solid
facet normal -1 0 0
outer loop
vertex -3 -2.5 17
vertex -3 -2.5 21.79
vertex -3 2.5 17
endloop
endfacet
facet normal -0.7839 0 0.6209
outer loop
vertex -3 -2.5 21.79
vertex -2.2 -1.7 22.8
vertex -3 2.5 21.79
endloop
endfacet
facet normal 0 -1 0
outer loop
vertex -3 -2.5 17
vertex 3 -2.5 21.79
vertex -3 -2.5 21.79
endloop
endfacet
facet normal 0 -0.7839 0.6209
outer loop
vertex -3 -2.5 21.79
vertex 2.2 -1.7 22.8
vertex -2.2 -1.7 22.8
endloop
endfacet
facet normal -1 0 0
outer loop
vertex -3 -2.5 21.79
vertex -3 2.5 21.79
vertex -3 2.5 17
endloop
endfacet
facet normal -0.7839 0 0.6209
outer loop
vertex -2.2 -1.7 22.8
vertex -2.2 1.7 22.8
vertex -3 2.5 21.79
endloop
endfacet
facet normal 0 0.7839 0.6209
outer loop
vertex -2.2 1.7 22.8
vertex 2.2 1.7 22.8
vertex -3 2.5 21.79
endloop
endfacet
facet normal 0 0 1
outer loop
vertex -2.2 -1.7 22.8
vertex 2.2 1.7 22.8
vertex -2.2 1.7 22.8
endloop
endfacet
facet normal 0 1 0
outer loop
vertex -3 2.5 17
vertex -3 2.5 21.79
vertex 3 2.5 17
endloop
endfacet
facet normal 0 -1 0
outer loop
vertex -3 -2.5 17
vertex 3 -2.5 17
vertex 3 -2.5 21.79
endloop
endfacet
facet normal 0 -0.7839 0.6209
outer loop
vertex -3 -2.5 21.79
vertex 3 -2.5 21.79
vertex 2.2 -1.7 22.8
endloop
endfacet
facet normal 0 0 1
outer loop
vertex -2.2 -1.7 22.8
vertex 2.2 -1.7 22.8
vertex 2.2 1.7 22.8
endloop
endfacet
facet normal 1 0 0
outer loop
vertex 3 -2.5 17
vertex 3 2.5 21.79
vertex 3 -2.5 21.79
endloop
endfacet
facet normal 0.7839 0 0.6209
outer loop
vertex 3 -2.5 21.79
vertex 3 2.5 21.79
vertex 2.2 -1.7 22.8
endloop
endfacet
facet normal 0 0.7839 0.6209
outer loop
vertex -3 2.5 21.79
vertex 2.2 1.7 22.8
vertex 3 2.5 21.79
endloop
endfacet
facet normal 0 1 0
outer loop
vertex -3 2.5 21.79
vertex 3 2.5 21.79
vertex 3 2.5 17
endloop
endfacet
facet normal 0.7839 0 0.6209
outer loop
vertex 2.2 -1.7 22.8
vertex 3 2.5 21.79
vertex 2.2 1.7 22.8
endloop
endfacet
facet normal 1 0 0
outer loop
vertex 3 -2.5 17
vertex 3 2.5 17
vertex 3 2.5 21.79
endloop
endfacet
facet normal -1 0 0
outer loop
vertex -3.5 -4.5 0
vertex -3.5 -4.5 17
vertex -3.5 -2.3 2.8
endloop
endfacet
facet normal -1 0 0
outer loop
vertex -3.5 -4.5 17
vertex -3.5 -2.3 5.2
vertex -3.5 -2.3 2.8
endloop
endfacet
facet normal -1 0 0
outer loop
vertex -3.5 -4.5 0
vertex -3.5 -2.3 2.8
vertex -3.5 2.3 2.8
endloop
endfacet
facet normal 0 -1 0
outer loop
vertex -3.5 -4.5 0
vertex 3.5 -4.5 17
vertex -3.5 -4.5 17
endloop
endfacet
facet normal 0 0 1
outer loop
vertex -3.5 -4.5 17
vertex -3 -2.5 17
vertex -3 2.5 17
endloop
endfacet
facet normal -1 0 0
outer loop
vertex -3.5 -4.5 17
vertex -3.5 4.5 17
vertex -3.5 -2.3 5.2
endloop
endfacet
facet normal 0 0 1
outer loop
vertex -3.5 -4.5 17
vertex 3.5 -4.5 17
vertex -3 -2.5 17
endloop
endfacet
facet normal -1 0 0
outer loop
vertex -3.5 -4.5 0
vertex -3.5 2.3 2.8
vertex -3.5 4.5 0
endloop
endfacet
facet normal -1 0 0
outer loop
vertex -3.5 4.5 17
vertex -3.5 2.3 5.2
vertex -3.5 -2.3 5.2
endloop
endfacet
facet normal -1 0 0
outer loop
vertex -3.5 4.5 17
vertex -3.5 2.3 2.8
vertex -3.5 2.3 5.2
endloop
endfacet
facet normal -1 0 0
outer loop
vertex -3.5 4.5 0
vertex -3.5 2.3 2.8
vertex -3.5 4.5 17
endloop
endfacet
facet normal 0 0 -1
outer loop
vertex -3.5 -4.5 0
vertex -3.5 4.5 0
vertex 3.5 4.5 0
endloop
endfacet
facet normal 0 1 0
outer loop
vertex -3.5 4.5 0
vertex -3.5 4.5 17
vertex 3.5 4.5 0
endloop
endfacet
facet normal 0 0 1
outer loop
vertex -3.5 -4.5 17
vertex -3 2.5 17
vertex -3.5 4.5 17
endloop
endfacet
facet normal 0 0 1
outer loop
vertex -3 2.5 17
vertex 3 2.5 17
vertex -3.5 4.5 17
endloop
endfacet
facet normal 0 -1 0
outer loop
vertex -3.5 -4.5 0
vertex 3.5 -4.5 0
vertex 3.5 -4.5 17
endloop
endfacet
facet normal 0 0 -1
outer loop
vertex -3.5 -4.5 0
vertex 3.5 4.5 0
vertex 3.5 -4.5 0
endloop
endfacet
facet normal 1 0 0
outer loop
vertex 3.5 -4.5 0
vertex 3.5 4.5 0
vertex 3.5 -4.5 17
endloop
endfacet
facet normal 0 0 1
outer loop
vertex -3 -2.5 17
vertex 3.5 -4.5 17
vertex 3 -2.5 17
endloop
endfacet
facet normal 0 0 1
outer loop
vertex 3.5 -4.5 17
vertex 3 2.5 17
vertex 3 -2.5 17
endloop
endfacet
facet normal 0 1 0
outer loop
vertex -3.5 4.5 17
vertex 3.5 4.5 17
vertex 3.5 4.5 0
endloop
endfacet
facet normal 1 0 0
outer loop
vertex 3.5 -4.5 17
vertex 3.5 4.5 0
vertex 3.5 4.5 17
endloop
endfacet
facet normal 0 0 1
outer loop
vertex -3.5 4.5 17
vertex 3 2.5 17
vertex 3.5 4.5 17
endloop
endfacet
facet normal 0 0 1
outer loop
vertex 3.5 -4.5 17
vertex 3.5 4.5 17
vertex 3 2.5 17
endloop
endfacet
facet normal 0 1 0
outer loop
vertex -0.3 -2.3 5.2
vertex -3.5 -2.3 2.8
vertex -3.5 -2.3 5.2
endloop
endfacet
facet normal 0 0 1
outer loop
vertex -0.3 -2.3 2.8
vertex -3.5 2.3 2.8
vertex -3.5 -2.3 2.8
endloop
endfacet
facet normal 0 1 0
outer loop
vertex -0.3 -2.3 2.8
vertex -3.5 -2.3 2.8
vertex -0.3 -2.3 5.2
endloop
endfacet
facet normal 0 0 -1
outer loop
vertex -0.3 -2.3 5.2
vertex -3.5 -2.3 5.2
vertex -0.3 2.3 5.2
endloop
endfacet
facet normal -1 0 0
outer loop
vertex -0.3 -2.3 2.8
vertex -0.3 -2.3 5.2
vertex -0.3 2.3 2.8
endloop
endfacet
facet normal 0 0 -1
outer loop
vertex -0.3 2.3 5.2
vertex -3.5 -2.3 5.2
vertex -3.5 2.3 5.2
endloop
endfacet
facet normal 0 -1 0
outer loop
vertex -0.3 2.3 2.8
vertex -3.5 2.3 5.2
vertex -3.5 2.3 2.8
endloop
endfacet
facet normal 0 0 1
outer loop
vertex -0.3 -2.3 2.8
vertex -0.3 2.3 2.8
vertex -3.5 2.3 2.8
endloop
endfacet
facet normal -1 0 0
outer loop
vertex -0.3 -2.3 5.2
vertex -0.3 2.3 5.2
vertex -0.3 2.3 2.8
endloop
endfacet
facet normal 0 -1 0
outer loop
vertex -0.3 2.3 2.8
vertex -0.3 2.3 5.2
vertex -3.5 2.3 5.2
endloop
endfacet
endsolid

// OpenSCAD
// file: lib/comun.scad
// =====================================================================
// AutoSwapEnder3Pro - parametros y utilidades comunes de las piezas
// Licencia MIT. Unidades: milimetros.
//
// Sistema de coordenadas de la ESTACION (el mismo en todas las piezas que
// se montan en ella):
//   s : a lo largo de la estacion, 0 = HOME del carro, crece hacia la impresora
//   x : a lo ancho, 0 = eje central (riel lineal), +x = lado de la caja de descarga
//   z : vertical, 0 = cara superior de la base de perfiles 2020 ("b" en la guia)
// El plano de transferencia (superficie por la que se deslizan las placas)
// esta en z = PLANO. Se ajusta a la altura de la cama de la impresora con las
// patas niveladoras, NO cambiando estas piezas.
// =====================================================================

$fn = 48;

// ----------------------------------------------------- placas y cama
placa_ancho  = 235;     // placa PEI
placa_largo  = 235;
placa_esp    = 0.6;     // espesor real de tus placas (mide con calibrador; 0.5 a 0.75)
voladizo     = 11;      // cuanto sobresale la placa (o su lengüeta) por delante de la cama

// ----------------------------------------------------- estacion (alturas sobre la base)
PLANO        = 60;      // plano de transferencia sobre la cara superior de la base
RIEL_SUP     = 20;      // cara superior del riel lineal (2020 apoyado en los travesaños)
ZP           = PLANO - RIEL_SUP;  // = 40: plano de transferencia sobre el riel lineal

// zapata (debe coincidir con zapata.scad)
zapata_bajo  = 8;       // cuanto cuelga la zapata por debajo de la placa
zapata_bolsillo = 6;    // profundidad del bolsillo para el dedo (desde abajo)

// cargador (ascensor)
paso_estante = 14;      // distancia vertical entre placas en el cargador
niveles      = 6;       // placas que caben en el cargador

// ----------------------------------------------------- perfil y tornilleria
perfil      = 20;       // perfil de aluminio 2020
ranura_ancho = 6.2;     // boca de la ranura (serie 20)
holgura     = 0.3;      // holgura general de impresion

m2_paso     = 1.8;   // agujero para autorroscante M2 (servos)
m3          = 3.4;   // paso libre M3
m3_rosca    = 2.7;   // para roscar M3 directamente en plastico
m3_tuerca   = 5.7;   // M3: entre caras + holgura
m3_tuerca_h = 2.6;
m3_cabeza   = 6.2;
m4          = 4.4;
m5          = 5.4;   // paso libre M5
m5_cabeza   = 9.2;
m5_tuerca   = 8.2;   // M5: entre caras + holgura

// ruedas en V estandar (Openbuilds "Solid V Wheel" + rodamientos 625)
rueda_d      = 23.9;
rueda_ancho  = 10.2;
rueda_sep    = 39.26;   // distancia entre centros de ruedas a ambos lados de un 2020
excentrica_d = 7.2;     // alojamiento del espaciador excentrico
espaciador_h = 6;       // espaciador (excentrico o fijo) entre rueda y placa

// ----------------------------------------------------- utilidades

// Caja con aristas verticales redondeadas (r) apoyada en z=0.
module caja_r(size, r = 2) {
  r2 = min(r, size[0] / 2 - 0.01, size[1] / 2 - 0.01);
  hull() for (ix = [r2, size[0] - r2], iy = [r2, size[1] - r2])
    translate([ix, iy, 0]) cylinder(r = r2, h = size[2]);
}

// Igual pero centrada en x e y.
module caja_rc(size, r = 2) { translate([-size[0] / 2, -size[1] / 2, 0]) caja_r(size, r); }

// Prisma hexagonal para tuercas (ec = medida entre caras).
module hexagono(ec, h) { cylinder(d = ec / cos(30), h = h, $fn = 6); }

// Ranura (agujero alargado) a lo largo de x.
module ranura(largo, d, h) {
  hull() for (i = [-largo / 2, largo / 2]) translate([i, 0, 0]) cylinder(d = d, h = h);
}

// Taladro M5 con avellanado para la cabeza (para atornillar a un perfil con tuerca en T).
module taladro_m5(h, cabeza = 4) {
  translate([0, 0, -0.1]) cylinder(d = m5, h = h + 0.2);
  translate([0, 0, h - cabeza]) cylinder(d = m5_cabeza + 0.6, h = cabeza + 0.1);
}

// Taladro M3 pasante con alojamiento de tuerca hexagonal por debajo.
module taladro_m3_tuerca(h, prof_tuerca = m3_tuerca_h + 0.2) {
  translate([0, 0, -0.1]) cylinder(d = m3, h = h + 0.2);
  translate([0, 0, -0.1]) hexagono(m3_tuerca, prof_tuerca + 0.1);
}

// Perfil 2020 de referencia (solo para ensamble y comprobaciones visuales).
module perfil2020(largo) {
  difference() {
    translate([-10, -10, 0]) cube([20, 20, largo]);
    for (a = [0, 90, 180, 270]) rotate([0, 0, a])
      translate([10 - 1.8, -ranura_ancho / 2, -1]) cube([2, ranura_ancho, largo + 2]);
    translate([0, 0, -1]) cylinder(d = 4.2, h = largo + 2);
  }
}

// Microinterruptor KW11-3Z con palanca de rodillo (referencia: 20 x 6.4 x 10 mm,
// taladros M2 a 9.5 mm). Agujeros de montaje, con la cara de montaje en z=0.
module taladros_kw11(h = 10) {
  for (i = [-4.75, 4.75]) translate([i, 0, -0.1]) cylinder(d = 2.2, h = h + 0.2);
}
// main file
// =====================================================================
// DEDO DEL GANCHO - corredera vertical que entra en el bolsillo de la zapata
// Material: PETG (o ASA). 100 % relleno. Imprimir de pie como sale el STL.
//
// Seccion inferior 7 x 9 mm (corre en el canal de carro_torre), punta 6 x 5 mm
// (entra en el bolsillo de 11 x 8 de la zapata). La ranura horizontal recibe el
// tornillo M2 del brazo del servo (yugo escoces): carrera 8 mm con +-30 grados.
// Altura total 22.8 mm: abajo la punta queda 3 mm bajo la zapata; arriba entra 5 mm.
// =====================================================================
include <lib/comun.scad>

inf      = [7, 9, 17];    // seccion inferior (x, y, alto)
punta    = [6, 5, 5.8];   // punta
ranura_z = 4;             // centro de la ranura del yugo sobre la base del dedo
ranura   = [3.2, 4.6, 2.4];  // profundidad (desde la cara -x), largo (y), alto (z)

module dedo() {
  difference() {
    union() {
      translate([-inf[0] / 2, -inf[1] / 2, 0]) cube(inf);
      // punta con chaflan para centrarse en el bolsillo
      hull() {
        translate([-punta[0] / 2, -punta[1] / 2, inf[2] - 0.01]) cube([punta[0], punta[1], punta[2] - 1]);
        translate([-punta[0] / 2 + 0.8, -punta[1] / 2 + 0.8, inf[2]]) cube([punta[0] - 1.6, punta[1] - 1.6, punta[2]]);
      }
    }
    // ranura del yugo (abierta hacia -x)
    translate([-inf[0] / 2 - 0.1, -ranura[1] / 2, ranura_z - ranura[2] / 2]) cube([ranura[0] + 0.1, ranura[1], ranura[2]]);
  }
}

dedo();
